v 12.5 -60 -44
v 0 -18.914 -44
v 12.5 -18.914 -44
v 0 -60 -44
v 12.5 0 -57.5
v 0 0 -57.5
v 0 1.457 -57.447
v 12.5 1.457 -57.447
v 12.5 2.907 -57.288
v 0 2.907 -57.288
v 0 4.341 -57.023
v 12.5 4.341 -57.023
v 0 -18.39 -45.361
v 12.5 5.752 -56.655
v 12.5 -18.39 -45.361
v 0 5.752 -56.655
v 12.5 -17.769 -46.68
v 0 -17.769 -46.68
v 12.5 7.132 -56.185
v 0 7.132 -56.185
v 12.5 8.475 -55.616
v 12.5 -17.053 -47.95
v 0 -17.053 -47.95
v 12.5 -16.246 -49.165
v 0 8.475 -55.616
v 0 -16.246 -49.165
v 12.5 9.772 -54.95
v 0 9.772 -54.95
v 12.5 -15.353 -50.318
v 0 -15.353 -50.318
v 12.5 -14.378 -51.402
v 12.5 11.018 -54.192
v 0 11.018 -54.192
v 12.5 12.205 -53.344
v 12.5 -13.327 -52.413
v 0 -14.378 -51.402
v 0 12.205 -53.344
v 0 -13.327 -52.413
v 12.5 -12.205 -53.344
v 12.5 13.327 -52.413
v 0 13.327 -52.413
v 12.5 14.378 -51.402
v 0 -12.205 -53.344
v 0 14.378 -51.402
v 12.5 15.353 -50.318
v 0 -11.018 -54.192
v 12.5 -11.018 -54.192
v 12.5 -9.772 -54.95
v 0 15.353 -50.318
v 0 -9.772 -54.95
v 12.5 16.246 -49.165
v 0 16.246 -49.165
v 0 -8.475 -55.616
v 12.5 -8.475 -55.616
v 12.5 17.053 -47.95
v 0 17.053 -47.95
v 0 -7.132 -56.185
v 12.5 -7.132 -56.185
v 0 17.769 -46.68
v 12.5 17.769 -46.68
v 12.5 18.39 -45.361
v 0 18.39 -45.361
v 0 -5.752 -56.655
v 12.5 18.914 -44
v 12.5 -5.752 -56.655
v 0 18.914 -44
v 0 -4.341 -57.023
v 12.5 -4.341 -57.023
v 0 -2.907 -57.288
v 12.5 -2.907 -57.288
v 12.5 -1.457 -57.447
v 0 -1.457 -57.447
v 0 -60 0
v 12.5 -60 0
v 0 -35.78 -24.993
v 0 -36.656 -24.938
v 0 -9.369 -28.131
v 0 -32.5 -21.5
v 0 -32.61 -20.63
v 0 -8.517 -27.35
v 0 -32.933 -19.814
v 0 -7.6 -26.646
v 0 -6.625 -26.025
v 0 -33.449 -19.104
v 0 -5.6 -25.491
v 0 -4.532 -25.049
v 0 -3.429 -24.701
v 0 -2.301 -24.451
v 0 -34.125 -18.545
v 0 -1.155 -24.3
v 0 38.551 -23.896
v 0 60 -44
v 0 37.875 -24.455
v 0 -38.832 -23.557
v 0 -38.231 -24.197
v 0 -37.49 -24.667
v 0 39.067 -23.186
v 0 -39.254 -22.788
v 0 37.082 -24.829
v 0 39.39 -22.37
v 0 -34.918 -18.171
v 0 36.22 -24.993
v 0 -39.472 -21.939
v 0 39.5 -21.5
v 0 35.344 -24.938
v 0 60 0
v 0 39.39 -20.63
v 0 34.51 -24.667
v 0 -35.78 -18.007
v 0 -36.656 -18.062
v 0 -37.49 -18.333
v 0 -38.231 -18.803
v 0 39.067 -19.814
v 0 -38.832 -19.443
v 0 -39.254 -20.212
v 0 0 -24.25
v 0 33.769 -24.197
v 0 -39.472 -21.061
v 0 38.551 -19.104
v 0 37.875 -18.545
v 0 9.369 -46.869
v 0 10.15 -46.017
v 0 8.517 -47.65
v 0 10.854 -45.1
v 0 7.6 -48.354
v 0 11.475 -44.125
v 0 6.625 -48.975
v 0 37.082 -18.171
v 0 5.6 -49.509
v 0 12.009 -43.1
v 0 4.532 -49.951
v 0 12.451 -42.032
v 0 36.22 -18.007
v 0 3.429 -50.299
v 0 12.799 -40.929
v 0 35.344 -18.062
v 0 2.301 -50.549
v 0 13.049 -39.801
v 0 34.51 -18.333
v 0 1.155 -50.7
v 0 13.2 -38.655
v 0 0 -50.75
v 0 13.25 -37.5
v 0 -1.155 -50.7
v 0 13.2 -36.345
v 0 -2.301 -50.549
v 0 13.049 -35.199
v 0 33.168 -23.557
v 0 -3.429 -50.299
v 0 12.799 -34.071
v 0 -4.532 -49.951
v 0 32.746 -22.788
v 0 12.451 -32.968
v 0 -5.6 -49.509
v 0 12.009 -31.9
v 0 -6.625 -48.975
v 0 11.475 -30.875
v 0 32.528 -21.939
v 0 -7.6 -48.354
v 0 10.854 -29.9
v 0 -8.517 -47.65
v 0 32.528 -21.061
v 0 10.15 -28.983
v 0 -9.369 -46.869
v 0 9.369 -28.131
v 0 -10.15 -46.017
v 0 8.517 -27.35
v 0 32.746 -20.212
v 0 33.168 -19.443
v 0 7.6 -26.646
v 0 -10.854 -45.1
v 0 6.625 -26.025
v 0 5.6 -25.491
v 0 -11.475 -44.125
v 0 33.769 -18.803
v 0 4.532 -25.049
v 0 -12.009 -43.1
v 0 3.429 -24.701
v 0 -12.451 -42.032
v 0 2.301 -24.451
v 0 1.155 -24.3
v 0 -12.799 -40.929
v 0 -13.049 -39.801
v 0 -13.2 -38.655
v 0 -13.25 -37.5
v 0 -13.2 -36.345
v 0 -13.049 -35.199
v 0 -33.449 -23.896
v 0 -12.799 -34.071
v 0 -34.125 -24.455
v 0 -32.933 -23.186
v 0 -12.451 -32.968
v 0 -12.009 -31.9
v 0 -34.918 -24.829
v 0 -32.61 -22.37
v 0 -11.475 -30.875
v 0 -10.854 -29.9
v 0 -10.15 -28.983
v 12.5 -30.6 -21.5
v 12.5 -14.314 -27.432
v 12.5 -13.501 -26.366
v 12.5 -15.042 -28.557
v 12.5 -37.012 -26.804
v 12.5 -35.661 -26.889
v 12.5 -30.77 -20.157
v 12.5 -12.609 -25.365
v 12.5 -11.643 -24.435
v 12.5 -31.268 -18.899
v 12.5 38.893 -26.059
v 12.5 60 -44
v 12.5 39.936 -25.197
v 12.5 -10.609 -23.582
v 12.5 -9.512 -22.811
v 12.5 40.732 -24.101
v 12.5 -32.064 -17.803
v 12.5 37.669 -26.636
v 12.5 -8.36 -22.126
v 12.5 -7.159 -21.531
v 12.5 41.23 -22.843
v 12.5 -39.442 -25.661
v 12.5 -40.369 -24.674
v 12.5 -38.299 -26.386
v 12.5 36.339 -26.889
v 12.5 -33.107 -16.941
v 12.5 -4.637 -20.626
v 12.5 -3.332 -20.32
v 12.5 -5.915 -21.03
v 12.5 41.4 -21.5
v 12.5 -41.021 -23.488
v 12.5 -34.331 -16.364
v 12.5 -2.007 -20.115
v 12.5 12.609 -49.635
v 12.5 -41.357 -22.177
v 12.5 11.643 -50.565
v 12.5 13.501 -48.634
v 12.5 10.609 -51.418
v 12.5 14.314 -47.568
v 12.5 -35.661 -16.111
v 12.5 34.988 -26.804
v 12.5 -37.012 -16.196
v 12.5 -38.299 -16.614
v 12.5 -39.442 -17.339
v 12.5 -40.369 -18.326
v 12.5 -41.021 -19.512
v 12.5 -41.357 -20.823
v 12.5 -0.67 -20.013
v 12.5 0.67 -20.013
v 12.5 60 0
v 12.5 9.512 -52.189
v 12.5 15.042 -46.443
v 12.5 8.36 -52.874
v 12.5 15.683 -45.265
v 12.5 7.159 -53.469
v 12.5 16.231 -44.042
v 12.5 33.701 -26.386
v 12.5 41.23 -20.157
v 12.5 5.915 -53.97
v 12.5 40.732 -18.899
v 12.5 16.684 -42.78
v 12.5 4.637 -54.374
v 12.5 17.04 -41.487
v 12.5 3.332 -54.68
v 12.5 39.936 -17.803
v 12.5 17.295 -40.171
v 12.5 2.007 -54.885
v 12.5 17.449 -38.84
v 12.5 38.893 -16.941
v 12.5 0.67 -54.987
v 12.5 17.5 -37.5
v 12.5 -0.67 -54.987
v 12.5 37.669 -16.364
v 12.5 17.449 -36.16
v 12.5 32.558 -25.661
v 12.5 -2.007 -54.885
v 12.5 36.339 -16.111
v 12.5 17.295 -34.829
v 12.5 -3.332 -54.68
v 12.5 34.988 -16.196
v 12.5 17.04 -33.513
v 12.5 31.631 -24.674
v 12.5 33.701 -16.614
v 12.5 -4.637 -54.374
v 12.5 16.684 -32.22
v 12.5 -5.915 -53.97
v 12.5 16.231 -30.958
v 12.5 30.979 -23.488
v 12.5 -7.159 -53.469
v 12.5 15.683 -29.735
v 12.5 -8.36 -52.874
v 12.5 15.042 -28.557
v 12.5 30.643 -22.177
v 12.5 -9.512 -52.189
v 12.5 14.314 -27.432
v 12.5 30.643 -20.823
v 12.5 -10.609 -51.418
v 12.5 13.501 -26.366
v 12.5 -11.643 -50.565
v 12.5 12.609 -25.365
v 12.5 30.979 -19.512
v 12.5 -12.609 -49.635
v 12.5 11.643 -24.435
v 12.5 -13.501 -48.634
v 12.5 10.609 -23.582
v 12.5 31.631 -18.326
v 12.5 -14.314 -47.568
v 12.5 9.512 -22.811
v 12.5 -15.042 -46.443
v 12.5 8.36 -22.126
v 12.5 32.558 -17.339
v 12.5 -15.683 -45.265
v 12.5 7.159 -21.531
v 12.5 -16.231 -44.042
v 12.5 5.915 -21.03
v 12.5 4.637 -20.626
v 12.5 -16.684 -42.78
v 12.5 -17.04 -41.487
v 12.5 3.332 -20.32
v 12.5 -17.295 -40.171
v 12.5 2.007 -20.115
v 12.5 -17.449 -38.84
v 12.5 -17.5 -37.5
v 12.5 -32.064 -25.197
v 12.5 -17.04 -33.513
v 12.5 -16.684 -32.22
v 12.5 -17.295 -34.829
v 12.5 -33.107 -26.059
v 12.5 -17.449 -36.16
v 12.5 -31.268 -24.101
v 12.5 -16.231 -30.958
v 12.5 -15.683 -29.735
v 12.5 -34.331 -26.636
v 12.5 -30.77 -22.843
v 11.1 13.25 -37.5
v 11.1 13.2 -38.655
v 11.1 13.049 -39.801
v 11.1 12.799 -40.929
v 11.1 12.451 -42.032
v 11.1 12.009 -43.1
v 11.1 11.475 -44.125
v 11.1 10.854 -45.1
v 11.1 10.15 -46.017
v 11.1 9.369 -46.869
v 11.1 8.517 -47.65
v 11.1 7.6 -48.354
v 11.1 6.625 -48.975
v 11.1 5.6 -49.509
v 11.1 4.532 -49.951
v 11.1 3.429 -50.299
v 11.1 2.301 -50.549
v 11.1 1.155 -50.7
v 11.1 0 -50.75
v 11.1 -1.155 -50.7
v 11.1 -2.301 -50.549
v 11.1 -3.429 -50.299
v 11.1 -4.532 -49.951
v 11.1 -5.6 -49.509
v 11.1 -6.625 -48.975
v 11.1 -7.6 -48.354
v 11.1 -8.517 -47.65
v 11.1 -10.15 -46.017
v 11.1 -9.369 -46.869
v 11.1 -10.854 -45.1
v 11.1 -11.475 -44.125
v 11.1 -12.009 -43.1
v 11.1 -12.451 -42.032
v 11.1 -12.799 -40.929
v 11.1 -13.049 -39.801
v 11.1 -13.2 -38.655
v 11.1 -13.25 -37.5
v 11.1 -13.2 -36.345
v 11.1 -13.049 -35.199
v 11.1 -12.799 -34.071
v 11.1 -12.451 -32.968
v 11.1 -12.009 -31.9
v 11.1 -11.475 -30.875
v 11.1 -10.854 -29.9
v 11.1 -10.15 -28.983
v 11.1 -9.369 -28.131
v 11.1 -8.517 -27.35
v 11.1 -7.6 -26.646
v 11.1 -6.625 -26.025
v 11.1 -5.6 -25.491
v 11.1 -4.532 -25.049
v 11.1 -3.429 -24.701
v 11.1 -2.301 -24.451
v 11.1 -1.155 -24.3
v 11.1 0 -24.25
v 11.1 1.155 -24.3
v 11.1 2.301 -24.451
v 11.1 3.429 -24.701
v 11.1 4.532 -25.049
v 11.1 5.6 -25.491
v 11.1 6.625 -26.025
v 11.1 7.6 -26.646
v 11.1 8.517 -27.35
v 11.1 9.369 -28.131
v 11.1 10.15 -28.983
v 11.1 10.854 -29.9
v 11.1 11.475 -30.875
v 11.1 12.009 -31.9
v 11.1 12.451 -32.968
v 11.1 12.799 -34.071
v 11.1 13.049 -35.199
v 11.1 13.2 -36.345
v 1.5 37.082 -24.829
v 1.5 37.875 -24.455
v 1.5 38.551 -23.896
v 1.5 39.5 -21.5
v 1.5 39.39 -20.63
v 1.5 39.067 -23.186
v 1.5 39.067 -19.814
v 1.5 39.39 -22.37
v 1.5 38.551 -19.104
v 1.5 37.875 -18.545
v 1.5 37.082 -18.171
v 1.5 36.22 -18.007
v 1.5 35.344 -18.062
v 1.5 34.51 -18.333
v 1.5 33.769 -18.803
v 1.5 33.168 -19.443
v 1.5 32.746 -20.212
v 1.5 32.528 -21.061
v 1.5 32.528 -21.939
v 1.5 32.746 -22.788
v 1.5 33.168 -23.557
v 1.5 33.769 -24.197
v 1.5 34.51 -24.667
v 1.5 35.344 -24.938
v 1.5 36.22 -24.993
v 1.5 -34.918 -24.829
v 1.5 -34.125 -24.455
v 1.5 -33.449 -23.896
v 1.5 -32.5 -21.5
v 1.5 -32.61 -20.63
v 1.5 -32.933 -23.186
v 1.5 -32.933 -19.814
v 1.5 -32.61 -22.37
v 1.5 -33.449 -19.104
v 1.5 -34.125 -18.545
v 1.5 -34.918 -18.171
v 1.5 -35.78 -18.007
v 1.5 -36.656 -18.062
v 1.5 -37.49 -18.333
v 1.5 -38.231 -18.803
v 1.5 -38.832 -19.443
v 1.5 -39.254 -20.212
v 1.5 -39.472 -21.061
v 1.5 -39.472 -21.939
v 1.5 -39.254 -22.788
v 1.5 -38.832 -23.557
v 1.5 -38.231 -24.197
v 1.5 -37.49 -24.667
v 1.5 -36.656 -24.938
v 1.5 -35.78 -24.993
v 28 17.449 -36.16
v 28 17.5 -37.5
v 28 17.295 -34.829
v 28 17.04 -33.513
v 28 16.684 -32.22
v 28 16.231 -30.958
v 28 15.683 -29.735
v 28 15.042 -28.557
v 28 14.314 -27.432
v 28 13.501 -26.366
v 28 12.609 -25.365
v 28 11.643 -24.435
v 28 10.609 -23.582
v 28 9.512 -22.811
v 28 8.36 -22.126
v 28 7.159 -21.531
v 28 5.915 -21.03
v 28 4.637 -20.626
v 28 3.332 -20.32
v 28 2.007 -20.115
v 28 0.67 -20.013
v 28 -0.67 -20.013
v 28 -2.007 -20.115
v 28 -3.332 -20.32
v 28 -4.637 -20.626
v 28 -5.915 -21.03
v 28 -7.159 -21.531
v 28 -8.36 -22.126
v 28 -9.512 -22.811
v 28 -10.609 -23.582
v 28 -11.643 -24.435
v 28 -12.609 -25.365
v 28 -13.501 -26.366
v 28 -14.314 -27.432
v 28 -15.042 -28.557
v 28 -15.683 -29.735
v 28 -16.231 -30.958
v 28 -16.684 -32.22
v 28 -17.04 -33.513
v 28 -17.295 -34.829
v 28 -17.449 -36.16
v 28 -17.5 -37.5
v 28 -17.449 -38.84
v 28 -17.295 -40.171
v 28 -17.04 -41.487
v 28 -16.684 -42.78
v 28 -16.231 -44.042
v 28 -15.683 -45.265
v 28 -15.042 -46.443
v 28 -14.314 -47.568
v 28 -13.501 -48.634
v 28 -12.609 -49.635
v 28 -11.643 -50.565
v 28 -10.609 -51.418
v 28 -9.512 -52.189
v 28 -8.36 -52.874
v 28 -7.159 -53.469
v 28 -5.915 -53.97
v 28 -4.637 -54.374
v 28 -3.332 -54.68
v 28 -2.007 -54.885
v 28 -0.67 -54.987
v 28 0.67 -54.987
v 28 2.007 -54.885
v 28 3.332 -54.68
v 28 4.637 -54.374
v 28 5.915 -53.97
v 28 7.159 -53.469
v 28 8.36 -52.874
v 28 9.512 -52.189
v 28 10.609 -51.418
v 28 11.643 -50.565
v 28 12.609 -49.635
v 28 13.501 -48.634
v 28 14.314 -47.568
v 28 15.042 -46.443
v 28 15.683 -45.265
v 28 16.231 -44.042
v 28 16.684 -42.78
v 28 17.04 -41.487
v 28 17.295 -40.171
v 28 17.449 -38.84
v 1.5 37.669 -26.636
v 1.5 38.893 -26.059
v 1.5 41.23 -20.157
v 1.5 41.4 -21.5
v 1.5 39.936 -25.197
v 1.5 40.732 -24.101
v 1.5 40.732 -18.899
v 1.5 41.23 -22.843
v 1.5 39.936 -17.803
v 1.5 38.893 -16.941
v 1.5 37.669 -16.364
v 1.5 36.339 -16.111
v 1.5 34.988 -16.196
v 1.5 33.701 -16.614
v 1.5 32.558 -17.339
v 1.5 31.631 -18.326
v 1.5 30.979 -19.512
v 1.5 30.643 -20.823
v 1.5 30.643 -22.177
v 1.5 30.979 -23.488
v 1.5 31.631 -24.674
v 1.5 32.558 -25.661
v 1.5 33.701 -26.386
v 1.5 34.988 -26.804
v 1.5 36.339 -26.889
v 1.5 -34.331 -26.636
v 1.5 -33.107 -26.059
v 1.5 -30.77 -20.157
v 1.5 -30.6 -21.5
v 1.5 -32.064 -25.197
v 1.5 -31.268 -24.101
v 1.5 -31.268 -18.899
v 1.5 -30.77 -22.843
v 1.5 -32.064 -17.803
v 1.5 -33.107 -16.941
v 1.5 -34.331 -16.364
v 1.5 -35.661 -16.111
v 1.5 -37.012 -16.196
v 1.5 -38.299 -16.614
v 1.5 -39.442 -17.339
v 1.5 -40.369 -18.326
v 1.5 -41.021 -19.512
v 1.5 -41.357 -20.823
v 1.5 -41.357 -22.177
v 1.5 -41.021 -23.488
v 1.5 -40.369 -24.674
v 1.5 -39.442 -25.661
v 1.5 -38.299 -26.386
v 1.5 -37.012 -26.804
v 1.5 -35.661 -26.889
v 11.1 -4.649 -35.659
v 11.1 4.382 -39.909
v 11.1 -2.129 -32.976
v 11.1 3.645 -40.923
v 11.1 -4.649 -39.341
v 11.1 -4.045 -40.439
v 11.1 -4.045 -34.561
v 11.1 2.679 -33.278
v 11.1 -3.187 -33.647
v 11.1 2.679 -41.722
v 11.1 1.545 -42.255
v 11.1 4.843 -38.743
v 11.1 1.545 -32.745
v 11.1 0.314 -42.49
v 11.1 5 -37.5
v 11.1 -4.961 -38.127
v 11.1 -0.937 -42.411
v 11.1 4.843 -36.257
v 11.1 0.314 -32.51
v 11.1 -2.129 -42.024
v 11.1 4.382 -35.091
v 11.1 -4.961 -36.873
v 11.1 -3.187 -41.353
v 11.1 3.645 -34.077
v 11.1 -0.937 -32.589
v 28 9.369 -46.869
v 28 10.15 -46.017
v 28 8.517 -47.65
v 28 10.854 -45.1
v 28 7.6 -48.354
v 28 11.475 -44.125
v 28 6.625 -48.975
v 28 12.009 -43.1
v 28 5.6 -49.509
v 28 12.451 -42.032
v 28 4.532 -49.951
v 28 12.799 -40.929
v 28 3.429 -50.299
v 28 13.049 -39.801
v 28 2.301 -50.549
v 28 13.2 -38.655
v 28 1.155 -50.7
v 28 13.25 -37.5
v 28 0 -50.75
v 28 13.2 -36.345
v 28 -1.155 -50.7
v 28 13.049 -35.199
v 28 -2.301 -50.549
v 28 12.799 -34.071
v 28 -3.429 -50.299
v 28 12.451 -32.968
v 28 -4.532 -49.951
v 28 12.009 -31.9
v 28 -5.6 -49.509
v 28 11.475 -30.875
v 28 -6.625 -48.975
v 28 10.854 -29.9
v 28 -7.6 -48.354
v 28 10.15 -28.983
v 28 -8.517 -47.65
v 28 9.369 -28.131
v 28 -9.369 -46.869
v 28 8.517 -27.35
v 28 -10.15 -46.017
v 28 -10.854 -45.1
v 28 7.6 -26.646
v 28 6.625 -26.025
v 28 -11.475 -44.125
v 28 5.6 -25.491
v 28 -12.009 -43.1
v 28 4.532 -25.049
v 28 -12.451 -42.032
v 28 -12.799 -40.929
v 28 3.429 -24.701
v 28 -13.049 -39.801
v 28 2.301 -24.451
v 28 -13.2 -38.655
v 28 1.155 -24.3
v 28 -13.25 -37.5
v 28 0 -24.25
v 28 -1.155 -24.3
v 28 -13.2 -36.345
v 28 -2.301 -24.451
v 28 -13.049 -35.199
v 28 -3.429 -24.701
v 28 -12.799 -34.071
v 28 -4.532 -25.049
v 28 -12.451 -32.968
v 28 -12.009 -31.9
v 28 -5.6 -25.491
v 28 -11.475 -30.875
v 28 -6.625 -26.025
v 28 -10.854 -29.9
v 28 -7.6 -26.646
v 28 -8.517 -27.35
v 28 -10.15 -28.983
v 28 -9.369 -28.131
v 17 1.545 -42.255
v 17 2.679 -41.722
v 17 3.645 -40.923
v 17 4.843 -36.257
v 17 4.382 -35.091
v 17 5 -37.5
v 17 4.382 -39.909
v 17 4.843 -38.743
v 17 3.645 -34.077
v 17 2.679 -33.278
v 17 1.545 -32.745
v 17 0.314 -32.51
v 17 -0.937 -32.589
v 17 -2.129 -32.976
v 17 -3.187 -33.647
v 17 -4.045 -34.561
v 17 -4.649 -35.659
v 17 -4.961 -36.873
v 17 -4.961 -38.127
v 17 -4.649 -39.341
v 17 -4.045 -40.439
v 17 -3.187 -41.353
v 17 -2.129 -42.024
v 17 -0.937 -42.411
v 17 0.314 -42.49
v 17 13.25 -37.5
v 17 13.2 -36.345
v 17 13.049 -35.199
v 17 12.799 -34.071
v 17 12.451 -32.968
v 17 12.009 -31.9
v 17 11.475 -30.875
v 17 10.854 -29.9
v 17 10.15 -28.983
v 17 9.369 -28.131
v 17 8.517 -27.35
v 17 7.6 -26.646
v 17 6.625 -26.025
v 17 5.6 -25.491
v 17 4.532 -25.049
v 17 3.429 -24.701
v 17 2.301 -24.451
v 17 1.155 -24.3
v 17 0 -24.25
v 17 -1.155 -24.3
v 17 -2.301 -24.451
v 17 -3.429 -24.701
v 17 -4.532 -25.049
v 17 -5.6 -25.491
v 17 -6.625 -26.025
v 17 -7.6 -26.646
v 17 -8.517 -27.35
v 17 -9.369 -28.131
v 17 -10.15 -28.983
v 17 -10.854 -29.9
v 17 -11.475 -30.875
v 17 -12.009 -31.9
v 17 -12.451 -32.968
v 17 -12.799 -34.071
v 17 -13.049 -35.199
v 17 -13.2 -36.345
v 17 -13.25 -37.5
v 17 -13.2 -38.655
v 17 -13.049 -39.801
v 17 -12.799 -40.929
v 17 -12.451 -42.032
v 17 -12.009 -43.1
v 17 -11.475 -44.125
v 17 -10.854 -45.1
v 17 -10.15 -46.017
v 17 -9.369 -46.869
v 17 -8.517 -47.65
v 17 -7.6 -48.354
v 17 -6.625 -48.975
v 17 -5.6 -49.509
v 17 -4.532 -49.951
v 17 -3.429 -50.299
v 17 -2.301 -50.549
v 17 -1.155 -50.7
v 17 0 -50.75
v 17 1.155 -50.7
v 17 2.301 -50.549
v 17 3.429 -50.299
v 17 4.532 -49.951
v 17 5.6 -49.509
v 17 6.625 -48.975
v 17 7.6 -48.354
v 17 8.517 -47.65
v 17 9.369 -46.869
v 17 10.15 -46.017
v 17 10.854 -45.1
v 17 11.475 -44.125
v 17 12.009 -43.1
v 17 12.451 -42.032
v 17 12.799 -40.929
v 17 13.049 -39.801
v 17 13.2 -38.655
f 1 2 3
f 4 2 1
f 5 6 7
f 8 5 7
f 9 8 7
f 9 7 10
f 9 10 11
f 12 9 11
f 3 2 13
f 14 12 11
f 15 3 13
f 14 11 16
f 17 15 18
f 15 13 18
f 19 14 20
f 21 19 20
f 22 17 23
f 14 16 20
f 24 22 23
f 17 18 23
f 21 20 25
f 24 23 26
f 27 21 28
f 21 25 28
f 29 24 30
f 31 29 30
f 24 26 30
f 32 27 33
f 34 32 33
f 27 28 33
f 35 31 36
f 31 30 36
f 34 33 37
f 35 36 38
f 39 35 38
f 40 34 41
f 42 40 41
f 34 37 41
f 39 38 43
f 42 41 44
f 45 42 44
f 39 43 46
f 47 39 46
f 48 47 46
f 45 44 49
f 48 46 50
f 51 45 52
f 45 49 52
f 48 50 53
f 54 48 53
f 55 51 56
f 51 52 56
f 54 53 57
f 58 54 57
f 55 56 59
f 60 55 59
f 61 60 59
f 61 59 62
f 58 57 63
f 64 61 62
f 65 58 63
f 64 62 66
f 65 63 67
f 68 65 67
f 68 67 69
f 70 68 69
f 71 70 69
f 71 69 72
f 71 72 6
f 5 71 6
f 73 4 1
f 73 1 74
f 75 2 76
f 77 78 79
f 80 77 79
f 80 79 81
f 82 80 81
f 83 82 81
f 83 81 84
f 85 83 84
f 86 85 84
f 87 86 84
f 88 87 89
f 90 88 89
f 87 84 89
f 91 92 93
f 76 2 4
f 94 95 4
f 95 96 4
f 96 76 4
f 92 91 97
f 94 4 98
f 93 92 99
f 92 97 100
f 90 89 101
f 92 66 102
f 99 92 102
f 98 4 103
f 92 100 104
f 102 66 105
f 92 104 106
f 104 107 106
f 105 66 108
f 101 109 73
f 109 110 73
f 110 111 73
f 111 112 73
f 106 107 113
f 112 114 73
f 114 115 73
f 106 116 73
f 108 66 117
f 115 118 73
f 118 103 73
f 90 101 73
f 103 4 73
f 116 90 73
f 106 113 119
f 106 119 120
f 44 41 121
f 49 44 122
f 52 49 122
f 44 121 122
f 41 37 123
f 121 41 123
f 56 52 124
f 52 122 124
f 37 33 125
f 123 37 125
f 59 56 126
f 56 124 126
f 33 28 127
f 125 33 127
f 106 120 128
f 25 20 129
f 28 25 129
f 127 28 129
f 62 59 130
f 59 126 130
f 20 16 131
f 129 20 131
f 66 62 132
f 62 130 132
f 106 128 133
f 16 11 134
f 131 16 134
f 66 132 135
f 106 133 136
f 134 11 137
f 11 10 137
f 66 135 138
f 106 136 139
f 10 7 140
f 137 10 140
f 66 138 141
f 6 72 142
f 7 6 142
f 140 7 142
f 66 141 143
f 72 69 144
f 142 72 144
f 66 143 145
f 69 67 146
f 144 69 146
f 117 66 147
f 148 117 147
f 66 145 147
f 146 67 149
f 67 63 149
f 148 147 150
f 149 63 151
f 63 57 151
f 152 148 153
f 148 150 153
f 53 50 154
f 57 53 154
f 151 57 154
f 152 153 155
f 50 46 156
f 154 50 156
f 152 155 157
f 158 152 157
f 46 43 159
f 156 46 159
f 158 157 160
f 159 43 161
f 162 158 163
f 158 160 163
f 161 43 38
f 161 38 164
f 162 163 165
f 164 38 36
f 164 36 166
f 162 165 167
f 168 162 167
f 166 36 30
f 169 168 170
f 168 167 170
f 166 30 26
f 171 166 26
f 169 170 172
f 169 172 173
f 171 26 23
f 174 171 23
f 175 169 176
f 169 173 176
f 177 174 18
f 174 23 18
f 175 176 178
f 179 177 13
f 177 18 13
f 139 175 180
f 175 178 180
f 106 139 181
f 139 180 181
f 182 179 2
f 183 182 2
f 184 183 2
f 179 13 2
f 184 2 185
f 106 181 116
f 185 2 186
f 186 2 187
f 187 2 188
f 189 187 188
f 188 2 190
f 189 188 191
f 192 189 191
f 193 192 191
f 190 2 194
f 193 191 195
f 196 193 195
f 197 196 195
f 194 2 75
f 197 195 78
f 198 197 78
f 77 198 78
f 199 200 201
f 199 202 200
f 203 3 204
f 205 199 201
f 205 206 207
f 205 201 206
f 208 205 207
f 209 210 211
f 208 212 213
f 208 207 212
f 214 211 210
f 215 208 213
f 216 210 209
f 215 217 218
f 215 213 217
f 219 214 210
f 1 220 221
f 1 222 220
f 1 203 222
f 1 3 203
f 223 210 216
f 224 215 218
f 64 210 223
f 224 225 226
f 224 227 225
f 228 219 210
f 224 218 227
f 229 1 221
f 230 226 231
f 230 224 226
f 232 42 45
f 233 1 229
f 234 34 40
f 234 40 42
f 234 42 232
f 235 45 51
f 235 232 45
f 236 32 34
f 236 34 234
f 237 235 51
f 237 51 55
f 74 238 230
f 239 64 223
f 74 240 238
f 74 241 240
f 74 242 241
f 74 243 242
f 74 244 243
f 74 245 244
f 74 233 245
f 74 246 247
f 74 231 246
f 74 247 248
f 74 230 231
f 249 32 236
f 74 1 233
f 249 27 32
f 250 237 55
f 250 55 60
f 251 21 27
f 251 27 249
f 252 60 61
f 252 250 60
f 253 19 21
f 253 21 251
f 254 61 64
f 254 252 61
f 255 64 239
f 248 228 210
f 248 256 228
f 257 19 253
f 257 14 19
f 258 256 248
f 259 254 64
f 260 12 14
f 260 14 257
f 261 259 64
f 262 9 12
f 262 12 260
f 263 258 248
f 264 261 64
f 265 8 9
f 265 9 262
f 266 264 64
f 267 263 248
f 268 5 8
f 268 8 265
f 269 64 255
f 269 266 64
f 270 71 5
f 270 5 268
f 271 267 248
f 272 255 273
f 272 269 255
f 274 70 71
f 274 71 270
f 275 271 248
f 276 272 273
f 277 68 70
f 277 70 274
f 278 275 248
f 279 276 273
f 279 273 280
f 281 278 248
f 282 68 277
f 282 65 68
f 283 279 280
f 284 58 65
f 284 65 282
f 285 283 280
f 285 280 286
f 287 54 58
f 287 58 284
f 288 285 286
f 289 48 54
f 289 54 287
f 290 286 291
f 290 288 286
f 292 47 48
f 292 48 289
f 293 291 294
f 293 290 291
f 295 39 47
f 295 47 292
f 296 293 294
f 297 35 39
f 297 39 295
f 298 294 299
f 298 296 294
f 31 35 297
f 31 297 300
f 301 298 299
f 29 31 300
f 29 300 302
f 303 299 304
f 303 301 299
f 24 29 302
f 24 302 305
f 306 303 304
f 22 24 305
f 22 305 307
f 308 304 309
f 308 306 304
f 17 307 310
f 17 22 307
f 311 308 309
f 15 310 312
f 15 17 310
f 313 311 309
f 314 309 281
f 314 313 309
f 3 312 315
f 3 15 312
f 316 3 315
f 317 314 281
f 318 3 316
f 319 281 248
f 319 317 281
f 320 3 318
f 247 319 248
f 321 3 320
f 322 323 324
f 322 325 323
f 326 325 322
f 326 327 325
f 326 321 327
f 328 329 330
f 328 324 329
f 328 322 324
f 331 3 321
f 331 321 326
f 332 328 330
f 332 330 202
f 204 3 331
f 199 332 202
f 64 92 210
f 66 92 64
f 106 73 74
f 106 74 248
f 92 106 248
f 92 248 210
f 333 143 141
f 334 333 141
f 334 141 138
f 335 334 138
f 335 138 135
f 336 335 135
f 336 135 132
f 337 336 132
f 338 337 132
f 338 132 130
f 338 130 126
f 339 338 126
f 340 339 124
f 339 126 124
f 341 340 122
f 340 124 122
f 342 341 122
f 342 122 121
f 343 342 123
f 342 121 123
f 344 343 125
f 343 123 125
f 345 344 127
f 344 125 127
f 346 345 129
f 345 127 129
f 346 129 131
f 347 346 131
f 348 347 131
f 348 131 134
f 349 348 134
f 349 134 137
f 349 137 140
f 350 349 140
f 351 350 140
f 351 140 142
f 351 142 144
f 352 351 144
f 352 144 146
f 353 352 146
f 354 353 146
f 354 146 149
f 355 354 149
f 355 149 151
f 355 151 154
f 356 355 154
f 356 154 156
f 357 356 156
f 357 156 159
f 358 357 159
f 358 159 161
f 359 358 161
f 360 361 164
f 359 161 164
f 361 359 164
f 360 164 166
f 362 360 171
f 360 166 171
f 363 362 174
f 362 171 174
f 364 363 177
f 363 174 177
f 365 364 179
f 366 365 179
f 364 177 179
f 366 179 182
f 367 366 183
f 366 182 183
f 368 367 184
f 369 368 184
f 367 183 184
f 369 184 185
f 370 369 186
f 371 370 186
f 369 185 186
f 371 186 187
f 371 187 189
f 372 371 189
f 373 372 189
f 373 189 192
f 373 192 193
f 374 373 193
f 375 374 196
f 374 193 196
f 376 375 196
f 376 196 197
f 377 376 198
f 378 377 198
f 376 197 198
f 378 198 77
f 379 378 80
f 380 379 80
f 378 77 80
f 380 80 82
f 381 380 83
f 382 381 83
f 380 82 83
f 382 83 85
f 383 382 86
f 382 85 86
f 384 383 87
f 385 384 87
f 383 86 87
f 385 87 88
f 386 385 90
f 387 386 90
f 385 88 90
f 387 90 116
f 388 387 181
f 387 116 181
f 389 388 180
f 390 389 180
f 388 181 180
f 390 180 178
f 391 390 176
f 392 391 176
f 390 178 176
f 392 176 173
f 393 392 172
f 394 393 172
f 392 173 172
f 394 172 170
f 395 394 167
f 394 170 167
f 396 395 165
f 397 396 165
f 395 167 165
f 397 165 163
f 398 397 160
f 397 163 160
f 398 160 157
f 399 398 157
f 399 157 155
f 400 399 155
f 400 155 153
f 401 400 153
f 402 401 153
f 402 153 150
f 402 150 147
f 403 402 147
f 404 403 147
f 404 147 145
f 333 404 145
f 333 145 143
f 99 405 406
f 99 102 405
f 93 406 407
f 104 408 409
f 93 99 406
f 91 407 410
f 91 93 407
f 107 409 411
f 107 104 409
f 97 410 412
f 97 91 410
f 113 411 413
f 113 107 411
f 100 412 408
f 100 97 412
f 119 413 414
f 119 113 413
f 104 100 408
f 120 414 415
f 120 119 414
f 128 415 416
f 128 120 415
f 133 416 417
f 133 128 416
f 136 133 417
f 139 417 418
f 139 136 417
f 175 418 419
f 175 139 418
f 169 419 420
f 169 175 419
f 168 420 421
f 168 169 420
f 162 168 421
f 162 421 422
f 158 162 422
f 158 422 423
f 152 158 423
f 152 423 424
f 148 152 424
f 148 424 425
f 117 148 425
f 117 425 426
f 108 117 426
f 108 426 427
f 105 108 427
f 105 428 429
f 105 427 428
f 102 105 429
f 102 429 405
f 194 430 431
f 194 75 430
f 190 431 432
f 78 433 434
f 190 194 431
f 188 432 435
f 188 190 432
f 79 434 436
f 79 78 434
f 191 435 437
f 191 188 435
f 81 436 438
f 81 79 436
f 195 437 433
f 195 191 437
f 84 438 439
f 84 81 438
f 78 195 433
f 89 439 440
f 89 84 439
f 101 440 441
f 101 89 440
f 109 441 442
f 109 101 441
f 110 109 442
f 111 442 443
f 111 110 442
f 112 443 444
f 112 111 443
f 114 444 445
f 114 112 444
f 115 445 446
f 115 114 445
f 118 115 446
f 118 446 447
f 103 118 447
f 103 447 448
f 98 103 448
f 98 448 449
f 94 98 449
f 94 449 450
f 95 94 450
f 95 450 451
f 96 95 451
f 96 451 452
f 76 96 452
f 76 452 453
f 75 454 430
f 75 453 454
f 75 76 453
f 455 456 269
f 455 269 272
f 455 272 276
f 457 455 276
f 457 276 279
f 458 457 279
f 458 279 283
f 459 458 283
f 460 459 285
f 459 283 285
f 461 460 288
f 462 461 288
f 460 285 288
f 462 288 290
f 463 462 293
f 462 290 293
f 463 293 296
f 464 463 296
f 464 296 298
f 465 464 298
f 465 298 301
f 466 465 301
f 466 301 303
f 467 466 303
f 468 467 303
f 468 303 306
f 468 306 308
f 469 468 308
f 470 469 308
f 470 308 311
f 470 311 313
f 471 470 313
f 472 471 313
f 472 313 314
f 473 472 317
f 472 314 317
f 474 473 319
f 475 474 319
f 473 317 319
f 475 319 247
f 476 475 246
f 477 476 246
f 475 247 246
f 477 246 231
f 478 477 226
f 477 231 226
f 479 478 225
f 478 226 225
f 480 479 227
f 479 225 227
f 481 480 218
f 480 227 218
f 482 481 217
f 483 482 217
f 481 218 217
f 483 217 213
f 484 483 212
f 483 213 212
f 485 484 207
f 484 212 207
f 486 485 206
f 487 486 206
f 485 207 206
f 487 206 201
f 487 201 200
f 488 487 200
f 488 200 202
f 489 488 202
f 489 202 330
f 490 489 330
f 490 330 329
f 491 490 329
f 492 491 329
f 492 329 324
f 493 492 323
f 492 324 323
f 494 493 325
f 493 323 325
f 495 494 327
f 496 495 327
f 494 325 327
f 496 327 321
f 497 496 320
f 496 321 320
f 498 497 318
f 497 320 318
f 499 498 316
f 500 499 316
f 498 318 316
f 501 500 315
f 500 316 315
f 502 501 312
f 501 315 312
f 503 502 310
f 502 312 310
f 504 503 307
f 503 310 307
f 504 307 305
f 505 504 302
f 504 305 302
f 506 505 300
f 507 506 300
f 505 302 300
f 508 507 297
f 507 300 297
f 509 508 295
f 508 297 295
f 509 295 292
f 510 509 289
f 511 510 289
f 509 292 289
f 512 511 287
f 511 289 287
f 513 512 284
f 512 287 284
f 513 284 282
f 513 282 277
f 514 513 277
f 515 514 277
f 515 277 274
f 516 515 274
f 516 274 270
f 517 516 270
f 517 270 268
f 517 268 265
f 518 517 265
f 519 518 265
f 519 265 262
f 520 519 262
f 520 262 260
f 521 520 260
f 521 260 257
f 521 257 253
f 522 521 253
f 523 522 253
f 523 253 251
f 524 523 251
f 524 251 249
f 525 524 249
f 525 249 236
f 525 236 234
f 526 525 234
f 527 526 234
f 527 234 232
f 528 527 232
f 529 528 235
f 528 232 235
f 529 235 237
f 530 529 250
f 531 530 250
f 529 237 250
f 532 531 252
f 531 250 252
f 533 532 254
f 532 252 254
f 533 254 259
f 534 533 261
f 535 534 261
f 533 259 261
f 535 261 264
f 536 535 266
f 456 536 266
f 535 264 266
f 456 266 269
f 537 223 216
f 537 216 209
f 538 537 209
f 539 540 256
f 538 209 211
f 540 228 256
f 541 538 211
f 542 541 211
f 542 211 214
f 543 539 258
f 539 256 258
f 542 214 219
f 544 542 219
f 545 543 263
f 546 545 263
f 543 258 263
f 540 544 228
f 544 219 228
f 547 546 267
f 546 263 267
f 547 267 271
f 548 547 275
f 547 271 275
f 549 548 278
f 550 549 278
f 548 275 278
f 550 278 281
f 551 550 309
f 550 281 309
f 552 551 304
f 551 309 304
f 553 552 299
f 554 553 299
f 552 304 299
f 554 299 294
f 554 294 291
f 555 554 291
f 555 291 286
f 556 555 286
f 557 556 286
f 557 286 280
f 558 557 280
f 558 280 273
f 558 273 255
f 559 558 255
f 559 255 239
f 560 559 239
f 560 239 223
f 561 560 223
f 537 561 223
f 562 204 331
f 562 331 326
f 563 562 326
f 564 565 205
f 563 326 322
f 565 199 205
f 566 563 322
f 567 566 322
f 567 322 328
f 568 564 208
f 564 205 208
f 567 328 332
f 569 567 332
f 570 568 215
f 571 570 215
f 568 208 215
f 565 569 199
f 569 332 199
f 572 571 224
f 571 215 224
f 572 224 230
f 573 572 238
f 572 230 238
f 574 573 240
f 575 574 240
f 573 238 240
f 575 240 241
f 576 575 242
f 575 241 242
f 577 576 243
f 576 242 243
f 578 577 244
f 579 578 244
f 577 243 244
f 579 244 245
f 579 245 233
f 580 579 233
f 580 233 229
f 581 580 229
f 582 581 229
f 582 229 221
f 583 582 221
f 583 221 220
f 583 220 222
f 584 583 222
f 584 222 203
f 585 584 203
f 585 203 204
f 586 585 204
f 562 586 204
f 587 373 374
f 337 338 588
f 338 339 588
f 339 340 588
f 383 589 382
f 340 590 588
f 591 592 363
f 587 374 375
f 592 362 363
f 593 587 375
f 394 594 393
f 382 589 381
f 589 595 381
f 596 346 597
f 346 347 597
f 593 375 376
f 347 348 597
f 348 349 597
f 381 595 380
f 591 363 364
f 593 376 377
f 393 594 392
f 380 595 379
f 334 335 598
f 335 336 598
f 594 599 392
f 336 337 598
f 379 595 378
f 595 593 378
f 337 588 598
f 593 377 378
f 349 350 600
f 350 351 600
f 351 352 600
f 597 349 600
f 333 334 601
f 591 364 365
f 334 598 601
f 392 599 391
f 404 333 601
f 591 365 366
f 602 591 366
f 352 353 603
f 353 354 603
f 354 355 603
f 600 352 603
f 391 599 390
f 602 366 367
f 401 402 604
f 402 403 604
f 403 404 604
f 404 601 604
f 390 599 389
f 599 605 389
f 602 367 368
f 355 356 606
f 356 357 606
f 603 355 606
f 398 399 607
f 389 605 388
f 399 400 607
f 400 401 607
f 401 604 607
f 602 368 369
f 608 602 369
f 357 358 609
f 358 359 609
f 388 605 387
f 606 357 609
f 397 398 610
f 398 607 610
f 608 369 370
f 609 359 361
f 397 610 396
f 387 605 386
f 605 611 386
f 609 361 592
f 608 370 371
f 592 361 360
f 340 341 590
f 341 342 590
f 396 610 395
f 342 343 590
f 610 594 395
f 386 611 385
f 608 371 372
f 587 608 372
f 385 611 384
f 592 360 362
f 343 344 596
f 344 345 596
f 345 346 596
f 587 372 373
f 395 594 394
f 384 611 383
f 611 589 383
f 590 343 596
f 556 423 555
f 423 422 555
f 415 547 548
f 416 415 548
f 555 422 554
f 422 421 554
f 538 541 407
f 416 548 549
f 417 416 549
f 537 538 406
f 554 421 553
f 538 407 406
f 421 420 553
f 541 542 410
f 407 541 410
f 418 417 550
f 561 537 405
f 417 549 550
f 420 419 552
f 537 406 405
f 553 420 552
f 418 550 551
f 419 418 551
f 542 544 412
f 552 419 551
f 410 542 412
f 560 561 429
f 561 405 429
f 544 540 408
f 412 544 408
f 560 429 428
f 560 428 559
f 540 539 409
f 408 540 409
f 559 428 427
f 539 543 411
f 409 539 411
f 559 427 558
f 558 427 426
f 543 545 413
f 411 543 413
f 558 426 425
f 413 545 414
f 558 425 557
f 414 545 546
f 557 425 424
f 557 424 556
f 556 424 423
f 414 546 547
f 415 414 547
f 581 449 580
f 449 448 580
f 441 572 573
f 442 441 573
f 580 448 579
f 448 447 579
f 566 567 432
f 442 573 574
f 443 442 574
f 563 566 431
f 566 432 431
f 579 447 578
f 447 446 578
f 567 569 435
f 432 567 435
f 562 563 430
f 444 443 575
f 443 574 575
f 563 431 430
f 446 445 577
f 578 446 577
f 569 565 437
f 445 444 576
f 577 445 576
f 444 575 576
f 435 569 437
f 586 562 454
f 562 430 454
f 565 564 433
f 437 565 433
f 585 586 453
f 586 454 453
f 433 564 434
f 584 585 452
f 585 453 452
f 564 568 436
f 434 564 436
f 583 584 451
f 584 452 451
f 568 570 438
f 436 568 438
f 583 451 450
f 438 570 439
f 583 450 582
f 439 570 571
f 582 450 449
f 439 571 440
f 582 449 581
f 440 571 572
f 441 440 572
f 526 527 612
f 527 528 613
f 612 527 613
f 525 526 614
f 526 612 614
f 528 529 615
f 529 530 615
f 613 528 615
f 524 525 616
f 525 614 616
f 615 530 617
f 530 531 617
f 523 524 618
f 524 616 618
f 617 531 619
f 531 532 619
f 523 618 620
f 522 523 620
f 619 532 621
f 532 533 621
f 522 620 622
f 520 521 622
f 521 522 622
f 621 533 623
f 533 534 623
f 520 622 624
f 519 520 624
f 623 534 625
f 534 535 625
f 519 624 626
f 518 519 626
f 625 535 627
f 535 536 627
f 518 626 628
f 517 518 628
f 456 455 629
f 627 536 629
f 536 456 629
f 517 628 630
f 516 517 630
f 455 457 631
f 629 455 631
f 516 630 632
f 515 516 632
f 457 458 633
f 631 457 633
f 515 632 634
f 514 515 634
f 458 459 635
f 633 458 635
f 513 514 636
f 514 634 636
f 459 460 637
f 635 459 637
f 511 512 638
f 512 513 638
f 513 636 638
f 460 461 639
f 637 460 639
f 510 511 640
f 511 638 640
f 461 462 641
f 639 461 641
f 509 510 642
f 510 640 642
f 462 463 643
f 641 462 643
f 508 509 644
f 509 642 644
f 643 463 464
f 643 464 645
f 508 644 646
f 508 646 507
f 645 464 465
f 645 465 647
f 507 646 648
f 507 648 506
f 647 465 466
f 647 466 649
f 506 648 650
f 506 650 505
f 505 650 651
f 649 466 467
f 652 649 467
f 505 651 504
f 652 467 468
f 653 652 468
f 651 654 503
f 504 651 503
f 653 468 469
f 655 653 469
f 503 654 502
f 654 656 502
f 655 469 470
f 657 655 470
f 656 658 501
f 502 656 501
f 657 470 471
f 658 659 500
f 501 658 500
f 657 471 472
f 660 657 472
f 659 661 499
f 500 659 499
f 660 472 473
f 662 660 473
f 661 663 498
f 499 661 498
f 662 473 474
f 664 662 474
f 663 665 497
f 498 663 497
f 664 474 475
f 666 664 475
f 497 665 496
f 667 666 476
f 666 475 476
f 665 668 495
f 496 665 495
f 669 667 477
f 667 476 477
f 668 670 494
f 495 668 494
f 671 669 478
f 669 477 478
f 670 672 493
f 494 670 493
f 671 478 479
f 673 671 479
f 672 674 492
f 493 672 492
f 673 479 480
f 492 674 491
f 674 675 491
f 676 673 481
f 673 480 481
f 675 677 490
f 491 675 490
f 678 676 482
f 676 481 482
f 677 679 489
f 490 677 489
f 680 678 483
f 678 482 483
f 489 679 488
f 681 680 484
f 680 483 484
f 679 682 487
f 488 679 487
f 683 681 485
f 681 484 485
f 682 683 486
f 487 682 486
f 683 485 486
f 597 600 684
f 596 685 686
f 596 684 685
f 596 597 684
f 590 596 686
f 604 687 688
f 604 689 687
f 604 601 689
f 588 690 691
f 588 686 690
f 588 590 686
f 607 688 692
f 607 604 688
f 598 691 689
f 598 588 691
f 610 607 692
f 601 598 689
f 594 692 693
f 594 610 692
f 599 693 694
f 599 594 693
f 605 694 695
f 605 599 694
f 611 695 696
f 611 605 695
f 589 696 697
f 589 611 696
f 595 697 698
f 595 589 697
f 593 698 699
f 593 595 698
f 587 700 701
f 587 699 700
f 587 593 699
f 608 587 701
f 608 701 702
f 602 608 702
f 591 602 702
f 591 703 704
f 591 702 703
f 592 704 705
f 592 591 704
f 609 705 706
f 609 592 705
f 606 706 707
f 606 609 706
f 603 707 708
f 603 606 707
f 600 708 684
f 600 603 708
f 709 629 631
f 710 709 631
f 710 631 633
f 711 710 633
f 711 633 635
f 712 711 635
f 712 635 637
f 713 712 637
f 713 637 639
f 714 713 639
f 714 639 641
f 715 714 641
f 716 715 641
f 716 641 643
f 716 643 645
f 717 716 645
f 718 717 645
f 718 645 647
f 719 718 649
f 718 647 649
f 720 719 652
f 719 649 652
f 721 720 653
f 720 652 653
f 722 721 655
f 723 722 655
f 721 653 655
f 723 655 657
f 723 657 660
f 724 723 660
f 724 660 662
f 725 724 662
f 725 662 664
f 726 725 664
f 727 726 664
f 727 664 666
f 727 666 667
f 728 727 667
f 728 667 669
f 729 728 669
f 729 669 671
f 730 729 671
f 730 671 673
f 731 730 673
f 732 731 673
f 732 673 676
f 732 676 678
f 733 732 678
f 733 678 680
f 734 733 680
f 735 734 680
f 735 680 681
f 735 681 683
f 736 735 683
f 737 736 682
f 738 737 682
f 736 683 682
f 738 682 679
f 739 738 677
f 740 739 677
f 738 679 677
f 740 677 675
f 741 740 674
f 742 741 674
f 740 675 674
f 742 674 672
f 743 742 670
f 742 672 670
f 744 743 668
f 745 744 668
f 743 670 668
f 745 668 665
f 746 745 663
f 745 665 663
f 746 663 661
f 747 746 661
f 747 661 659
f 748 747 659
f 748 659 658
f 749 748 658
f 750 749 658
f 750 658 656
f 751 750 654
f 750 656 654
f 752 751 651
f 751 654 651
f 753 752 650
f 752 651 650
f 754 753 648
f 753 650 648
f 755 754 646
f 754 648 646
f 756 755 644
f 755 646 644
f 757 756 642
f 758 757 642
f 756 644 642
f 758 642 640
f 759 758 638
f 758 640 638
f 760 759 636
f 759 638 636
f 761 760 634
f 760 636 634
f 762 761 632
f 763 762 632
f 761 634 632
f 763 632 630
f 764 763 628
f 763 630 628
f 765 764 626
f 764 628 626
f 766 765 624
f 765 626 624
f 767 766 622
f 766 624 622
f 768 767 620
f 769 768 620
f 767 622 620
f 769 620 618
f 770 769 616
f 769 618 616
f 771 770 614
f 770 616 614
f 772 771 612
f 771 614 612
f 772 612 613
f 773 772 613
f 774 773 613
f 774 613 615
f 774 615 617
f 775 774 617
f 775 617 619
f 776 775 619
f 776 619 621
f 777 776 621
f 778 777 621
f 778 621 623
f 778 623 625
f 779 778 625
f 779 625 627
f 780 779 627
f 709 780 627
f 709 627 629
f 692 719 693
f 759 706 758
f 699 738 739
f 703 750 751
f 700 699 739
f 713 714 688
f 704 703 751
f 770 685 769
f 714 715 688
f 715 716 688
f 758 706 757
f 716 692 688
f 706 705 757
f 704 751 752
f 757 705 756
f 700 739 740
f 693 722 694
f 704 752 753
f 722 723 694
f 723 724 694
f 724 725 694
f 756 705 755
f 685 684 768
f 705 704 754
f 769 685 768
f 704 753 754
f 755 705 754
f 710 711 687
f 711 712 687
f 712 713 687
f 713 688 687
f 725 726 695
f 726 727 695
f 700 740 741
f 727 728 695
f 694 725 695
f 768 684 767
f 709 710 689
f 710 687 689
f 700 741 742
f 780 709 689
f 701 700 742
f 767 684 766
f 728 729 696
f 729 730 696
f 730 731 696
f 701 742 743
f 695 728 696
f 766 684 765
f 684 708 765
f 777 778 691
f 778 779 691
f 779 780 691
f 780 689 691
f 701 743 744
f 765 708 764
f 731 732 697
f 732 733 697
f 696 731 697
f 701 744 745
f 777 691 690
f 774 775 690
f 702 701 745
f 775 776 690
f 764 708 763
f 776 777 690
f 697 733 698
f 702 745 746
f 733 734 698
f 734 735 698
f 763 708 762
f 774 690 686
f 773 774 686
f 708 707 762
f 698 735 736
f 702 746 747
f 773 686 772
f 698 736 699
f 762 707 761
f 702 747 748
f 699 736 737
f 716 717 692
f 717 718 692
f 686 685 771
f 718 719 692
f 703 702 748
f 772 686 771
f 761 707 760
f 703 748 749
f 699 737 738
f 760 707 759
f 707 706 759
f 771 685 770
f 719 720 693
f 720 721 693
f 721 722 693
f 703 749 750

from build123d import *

# Parameters (mm, degrees)
SKETCH_R        = 3.5
SKETCH_R_2      = 5
PAD_DEPTH       = 12.5
SKETCH001_R     = 5.4
POCKET_DEPTH    = 11
SKETCH002_R     = 13.25
POCKET001_DEPTH = 11.1
SKETCH003_R     = 17.5
SKETCH003_R_2   = 5
PAD001_DEPTH    = 15.5
SKETCH004_R     = 13.25
POCKET002_DEPTH = 11


with BuildPart() as part:
    # Sketch → Pad (new body)
    with BuildSketch(Plane.YZ):
        with BuildLine():
            Line((-18.91428, -44), (-60, -44))
            Line((-60, -44), (-60, 0))
            Line((-60, 0), (60, 0))
            Line((60, 0), (60, -44))
            Line((60, -44), (18.91428, -44))
            ThreePointArc((-18.91428, -44), (0, -57.5), (18.91428, -44))
        make_face()
        with Locations((-36, -21.5)):
            Circle(SKETCH_R, mode=Mode.SUBTRACT)
        with Locations((36, -21.5)):
            Circle(SKETCH_R, mode=Mode.SUBTRACT)
        with Locations((0, -37.5)):
            Circle(SKETCH_R_2, mode=Mode.SUBTRACT)
    extrude(amount=PAD_DEPTH)

    # Sketch001 → Pocket (cut)
    with BuildSketch(Plane.YZ.offset(12.5)):
        with Locations((-36, -21.5)):
            Circle(SKETCH001_R)
        with Locations((36, -21.5)):
            Circle(SKETCH001_R)
    extrude(amount=-POCKET_DEPTH, mode=Mode.SUBTRACT)

    # Sketch002 → Pocket001 (cut)
    with BuildSketch(Plane(origin=(0, 0, 0), x_dir=(0, 1, 0), z_dir=(-1, 0, 0))):
        with Locations((0, 37.5)):
            Circle(SKETCH002_R)
    extrude(amount=-POCKET001_DEPTH, mode=Mode.SUBTRACT)

    # Sketch003 → Pad001 (new body)
    with BuildSketch(Plane.YZ.offset(12.5)):
        with Locations((0, -37.5)):
            Circle(SKETCH003_R)
        with Locations((0, -37.5)):
            Circle(SKETCH003_R_2, mode=Mode.SUBTRACT)
    extrude(amount=PAD001_DEPTH)

    # Sketch004 → Pocket002 (cut)
    with BuildSketch(Plane.YZ.offset(28)):
        with Locations((0, -37.5)):
            Circle(SKETCH004_R)
    extrude(amount=-POCKET002_DEPTH, mode=Mode.SUBTRACT)


solid = part.part
